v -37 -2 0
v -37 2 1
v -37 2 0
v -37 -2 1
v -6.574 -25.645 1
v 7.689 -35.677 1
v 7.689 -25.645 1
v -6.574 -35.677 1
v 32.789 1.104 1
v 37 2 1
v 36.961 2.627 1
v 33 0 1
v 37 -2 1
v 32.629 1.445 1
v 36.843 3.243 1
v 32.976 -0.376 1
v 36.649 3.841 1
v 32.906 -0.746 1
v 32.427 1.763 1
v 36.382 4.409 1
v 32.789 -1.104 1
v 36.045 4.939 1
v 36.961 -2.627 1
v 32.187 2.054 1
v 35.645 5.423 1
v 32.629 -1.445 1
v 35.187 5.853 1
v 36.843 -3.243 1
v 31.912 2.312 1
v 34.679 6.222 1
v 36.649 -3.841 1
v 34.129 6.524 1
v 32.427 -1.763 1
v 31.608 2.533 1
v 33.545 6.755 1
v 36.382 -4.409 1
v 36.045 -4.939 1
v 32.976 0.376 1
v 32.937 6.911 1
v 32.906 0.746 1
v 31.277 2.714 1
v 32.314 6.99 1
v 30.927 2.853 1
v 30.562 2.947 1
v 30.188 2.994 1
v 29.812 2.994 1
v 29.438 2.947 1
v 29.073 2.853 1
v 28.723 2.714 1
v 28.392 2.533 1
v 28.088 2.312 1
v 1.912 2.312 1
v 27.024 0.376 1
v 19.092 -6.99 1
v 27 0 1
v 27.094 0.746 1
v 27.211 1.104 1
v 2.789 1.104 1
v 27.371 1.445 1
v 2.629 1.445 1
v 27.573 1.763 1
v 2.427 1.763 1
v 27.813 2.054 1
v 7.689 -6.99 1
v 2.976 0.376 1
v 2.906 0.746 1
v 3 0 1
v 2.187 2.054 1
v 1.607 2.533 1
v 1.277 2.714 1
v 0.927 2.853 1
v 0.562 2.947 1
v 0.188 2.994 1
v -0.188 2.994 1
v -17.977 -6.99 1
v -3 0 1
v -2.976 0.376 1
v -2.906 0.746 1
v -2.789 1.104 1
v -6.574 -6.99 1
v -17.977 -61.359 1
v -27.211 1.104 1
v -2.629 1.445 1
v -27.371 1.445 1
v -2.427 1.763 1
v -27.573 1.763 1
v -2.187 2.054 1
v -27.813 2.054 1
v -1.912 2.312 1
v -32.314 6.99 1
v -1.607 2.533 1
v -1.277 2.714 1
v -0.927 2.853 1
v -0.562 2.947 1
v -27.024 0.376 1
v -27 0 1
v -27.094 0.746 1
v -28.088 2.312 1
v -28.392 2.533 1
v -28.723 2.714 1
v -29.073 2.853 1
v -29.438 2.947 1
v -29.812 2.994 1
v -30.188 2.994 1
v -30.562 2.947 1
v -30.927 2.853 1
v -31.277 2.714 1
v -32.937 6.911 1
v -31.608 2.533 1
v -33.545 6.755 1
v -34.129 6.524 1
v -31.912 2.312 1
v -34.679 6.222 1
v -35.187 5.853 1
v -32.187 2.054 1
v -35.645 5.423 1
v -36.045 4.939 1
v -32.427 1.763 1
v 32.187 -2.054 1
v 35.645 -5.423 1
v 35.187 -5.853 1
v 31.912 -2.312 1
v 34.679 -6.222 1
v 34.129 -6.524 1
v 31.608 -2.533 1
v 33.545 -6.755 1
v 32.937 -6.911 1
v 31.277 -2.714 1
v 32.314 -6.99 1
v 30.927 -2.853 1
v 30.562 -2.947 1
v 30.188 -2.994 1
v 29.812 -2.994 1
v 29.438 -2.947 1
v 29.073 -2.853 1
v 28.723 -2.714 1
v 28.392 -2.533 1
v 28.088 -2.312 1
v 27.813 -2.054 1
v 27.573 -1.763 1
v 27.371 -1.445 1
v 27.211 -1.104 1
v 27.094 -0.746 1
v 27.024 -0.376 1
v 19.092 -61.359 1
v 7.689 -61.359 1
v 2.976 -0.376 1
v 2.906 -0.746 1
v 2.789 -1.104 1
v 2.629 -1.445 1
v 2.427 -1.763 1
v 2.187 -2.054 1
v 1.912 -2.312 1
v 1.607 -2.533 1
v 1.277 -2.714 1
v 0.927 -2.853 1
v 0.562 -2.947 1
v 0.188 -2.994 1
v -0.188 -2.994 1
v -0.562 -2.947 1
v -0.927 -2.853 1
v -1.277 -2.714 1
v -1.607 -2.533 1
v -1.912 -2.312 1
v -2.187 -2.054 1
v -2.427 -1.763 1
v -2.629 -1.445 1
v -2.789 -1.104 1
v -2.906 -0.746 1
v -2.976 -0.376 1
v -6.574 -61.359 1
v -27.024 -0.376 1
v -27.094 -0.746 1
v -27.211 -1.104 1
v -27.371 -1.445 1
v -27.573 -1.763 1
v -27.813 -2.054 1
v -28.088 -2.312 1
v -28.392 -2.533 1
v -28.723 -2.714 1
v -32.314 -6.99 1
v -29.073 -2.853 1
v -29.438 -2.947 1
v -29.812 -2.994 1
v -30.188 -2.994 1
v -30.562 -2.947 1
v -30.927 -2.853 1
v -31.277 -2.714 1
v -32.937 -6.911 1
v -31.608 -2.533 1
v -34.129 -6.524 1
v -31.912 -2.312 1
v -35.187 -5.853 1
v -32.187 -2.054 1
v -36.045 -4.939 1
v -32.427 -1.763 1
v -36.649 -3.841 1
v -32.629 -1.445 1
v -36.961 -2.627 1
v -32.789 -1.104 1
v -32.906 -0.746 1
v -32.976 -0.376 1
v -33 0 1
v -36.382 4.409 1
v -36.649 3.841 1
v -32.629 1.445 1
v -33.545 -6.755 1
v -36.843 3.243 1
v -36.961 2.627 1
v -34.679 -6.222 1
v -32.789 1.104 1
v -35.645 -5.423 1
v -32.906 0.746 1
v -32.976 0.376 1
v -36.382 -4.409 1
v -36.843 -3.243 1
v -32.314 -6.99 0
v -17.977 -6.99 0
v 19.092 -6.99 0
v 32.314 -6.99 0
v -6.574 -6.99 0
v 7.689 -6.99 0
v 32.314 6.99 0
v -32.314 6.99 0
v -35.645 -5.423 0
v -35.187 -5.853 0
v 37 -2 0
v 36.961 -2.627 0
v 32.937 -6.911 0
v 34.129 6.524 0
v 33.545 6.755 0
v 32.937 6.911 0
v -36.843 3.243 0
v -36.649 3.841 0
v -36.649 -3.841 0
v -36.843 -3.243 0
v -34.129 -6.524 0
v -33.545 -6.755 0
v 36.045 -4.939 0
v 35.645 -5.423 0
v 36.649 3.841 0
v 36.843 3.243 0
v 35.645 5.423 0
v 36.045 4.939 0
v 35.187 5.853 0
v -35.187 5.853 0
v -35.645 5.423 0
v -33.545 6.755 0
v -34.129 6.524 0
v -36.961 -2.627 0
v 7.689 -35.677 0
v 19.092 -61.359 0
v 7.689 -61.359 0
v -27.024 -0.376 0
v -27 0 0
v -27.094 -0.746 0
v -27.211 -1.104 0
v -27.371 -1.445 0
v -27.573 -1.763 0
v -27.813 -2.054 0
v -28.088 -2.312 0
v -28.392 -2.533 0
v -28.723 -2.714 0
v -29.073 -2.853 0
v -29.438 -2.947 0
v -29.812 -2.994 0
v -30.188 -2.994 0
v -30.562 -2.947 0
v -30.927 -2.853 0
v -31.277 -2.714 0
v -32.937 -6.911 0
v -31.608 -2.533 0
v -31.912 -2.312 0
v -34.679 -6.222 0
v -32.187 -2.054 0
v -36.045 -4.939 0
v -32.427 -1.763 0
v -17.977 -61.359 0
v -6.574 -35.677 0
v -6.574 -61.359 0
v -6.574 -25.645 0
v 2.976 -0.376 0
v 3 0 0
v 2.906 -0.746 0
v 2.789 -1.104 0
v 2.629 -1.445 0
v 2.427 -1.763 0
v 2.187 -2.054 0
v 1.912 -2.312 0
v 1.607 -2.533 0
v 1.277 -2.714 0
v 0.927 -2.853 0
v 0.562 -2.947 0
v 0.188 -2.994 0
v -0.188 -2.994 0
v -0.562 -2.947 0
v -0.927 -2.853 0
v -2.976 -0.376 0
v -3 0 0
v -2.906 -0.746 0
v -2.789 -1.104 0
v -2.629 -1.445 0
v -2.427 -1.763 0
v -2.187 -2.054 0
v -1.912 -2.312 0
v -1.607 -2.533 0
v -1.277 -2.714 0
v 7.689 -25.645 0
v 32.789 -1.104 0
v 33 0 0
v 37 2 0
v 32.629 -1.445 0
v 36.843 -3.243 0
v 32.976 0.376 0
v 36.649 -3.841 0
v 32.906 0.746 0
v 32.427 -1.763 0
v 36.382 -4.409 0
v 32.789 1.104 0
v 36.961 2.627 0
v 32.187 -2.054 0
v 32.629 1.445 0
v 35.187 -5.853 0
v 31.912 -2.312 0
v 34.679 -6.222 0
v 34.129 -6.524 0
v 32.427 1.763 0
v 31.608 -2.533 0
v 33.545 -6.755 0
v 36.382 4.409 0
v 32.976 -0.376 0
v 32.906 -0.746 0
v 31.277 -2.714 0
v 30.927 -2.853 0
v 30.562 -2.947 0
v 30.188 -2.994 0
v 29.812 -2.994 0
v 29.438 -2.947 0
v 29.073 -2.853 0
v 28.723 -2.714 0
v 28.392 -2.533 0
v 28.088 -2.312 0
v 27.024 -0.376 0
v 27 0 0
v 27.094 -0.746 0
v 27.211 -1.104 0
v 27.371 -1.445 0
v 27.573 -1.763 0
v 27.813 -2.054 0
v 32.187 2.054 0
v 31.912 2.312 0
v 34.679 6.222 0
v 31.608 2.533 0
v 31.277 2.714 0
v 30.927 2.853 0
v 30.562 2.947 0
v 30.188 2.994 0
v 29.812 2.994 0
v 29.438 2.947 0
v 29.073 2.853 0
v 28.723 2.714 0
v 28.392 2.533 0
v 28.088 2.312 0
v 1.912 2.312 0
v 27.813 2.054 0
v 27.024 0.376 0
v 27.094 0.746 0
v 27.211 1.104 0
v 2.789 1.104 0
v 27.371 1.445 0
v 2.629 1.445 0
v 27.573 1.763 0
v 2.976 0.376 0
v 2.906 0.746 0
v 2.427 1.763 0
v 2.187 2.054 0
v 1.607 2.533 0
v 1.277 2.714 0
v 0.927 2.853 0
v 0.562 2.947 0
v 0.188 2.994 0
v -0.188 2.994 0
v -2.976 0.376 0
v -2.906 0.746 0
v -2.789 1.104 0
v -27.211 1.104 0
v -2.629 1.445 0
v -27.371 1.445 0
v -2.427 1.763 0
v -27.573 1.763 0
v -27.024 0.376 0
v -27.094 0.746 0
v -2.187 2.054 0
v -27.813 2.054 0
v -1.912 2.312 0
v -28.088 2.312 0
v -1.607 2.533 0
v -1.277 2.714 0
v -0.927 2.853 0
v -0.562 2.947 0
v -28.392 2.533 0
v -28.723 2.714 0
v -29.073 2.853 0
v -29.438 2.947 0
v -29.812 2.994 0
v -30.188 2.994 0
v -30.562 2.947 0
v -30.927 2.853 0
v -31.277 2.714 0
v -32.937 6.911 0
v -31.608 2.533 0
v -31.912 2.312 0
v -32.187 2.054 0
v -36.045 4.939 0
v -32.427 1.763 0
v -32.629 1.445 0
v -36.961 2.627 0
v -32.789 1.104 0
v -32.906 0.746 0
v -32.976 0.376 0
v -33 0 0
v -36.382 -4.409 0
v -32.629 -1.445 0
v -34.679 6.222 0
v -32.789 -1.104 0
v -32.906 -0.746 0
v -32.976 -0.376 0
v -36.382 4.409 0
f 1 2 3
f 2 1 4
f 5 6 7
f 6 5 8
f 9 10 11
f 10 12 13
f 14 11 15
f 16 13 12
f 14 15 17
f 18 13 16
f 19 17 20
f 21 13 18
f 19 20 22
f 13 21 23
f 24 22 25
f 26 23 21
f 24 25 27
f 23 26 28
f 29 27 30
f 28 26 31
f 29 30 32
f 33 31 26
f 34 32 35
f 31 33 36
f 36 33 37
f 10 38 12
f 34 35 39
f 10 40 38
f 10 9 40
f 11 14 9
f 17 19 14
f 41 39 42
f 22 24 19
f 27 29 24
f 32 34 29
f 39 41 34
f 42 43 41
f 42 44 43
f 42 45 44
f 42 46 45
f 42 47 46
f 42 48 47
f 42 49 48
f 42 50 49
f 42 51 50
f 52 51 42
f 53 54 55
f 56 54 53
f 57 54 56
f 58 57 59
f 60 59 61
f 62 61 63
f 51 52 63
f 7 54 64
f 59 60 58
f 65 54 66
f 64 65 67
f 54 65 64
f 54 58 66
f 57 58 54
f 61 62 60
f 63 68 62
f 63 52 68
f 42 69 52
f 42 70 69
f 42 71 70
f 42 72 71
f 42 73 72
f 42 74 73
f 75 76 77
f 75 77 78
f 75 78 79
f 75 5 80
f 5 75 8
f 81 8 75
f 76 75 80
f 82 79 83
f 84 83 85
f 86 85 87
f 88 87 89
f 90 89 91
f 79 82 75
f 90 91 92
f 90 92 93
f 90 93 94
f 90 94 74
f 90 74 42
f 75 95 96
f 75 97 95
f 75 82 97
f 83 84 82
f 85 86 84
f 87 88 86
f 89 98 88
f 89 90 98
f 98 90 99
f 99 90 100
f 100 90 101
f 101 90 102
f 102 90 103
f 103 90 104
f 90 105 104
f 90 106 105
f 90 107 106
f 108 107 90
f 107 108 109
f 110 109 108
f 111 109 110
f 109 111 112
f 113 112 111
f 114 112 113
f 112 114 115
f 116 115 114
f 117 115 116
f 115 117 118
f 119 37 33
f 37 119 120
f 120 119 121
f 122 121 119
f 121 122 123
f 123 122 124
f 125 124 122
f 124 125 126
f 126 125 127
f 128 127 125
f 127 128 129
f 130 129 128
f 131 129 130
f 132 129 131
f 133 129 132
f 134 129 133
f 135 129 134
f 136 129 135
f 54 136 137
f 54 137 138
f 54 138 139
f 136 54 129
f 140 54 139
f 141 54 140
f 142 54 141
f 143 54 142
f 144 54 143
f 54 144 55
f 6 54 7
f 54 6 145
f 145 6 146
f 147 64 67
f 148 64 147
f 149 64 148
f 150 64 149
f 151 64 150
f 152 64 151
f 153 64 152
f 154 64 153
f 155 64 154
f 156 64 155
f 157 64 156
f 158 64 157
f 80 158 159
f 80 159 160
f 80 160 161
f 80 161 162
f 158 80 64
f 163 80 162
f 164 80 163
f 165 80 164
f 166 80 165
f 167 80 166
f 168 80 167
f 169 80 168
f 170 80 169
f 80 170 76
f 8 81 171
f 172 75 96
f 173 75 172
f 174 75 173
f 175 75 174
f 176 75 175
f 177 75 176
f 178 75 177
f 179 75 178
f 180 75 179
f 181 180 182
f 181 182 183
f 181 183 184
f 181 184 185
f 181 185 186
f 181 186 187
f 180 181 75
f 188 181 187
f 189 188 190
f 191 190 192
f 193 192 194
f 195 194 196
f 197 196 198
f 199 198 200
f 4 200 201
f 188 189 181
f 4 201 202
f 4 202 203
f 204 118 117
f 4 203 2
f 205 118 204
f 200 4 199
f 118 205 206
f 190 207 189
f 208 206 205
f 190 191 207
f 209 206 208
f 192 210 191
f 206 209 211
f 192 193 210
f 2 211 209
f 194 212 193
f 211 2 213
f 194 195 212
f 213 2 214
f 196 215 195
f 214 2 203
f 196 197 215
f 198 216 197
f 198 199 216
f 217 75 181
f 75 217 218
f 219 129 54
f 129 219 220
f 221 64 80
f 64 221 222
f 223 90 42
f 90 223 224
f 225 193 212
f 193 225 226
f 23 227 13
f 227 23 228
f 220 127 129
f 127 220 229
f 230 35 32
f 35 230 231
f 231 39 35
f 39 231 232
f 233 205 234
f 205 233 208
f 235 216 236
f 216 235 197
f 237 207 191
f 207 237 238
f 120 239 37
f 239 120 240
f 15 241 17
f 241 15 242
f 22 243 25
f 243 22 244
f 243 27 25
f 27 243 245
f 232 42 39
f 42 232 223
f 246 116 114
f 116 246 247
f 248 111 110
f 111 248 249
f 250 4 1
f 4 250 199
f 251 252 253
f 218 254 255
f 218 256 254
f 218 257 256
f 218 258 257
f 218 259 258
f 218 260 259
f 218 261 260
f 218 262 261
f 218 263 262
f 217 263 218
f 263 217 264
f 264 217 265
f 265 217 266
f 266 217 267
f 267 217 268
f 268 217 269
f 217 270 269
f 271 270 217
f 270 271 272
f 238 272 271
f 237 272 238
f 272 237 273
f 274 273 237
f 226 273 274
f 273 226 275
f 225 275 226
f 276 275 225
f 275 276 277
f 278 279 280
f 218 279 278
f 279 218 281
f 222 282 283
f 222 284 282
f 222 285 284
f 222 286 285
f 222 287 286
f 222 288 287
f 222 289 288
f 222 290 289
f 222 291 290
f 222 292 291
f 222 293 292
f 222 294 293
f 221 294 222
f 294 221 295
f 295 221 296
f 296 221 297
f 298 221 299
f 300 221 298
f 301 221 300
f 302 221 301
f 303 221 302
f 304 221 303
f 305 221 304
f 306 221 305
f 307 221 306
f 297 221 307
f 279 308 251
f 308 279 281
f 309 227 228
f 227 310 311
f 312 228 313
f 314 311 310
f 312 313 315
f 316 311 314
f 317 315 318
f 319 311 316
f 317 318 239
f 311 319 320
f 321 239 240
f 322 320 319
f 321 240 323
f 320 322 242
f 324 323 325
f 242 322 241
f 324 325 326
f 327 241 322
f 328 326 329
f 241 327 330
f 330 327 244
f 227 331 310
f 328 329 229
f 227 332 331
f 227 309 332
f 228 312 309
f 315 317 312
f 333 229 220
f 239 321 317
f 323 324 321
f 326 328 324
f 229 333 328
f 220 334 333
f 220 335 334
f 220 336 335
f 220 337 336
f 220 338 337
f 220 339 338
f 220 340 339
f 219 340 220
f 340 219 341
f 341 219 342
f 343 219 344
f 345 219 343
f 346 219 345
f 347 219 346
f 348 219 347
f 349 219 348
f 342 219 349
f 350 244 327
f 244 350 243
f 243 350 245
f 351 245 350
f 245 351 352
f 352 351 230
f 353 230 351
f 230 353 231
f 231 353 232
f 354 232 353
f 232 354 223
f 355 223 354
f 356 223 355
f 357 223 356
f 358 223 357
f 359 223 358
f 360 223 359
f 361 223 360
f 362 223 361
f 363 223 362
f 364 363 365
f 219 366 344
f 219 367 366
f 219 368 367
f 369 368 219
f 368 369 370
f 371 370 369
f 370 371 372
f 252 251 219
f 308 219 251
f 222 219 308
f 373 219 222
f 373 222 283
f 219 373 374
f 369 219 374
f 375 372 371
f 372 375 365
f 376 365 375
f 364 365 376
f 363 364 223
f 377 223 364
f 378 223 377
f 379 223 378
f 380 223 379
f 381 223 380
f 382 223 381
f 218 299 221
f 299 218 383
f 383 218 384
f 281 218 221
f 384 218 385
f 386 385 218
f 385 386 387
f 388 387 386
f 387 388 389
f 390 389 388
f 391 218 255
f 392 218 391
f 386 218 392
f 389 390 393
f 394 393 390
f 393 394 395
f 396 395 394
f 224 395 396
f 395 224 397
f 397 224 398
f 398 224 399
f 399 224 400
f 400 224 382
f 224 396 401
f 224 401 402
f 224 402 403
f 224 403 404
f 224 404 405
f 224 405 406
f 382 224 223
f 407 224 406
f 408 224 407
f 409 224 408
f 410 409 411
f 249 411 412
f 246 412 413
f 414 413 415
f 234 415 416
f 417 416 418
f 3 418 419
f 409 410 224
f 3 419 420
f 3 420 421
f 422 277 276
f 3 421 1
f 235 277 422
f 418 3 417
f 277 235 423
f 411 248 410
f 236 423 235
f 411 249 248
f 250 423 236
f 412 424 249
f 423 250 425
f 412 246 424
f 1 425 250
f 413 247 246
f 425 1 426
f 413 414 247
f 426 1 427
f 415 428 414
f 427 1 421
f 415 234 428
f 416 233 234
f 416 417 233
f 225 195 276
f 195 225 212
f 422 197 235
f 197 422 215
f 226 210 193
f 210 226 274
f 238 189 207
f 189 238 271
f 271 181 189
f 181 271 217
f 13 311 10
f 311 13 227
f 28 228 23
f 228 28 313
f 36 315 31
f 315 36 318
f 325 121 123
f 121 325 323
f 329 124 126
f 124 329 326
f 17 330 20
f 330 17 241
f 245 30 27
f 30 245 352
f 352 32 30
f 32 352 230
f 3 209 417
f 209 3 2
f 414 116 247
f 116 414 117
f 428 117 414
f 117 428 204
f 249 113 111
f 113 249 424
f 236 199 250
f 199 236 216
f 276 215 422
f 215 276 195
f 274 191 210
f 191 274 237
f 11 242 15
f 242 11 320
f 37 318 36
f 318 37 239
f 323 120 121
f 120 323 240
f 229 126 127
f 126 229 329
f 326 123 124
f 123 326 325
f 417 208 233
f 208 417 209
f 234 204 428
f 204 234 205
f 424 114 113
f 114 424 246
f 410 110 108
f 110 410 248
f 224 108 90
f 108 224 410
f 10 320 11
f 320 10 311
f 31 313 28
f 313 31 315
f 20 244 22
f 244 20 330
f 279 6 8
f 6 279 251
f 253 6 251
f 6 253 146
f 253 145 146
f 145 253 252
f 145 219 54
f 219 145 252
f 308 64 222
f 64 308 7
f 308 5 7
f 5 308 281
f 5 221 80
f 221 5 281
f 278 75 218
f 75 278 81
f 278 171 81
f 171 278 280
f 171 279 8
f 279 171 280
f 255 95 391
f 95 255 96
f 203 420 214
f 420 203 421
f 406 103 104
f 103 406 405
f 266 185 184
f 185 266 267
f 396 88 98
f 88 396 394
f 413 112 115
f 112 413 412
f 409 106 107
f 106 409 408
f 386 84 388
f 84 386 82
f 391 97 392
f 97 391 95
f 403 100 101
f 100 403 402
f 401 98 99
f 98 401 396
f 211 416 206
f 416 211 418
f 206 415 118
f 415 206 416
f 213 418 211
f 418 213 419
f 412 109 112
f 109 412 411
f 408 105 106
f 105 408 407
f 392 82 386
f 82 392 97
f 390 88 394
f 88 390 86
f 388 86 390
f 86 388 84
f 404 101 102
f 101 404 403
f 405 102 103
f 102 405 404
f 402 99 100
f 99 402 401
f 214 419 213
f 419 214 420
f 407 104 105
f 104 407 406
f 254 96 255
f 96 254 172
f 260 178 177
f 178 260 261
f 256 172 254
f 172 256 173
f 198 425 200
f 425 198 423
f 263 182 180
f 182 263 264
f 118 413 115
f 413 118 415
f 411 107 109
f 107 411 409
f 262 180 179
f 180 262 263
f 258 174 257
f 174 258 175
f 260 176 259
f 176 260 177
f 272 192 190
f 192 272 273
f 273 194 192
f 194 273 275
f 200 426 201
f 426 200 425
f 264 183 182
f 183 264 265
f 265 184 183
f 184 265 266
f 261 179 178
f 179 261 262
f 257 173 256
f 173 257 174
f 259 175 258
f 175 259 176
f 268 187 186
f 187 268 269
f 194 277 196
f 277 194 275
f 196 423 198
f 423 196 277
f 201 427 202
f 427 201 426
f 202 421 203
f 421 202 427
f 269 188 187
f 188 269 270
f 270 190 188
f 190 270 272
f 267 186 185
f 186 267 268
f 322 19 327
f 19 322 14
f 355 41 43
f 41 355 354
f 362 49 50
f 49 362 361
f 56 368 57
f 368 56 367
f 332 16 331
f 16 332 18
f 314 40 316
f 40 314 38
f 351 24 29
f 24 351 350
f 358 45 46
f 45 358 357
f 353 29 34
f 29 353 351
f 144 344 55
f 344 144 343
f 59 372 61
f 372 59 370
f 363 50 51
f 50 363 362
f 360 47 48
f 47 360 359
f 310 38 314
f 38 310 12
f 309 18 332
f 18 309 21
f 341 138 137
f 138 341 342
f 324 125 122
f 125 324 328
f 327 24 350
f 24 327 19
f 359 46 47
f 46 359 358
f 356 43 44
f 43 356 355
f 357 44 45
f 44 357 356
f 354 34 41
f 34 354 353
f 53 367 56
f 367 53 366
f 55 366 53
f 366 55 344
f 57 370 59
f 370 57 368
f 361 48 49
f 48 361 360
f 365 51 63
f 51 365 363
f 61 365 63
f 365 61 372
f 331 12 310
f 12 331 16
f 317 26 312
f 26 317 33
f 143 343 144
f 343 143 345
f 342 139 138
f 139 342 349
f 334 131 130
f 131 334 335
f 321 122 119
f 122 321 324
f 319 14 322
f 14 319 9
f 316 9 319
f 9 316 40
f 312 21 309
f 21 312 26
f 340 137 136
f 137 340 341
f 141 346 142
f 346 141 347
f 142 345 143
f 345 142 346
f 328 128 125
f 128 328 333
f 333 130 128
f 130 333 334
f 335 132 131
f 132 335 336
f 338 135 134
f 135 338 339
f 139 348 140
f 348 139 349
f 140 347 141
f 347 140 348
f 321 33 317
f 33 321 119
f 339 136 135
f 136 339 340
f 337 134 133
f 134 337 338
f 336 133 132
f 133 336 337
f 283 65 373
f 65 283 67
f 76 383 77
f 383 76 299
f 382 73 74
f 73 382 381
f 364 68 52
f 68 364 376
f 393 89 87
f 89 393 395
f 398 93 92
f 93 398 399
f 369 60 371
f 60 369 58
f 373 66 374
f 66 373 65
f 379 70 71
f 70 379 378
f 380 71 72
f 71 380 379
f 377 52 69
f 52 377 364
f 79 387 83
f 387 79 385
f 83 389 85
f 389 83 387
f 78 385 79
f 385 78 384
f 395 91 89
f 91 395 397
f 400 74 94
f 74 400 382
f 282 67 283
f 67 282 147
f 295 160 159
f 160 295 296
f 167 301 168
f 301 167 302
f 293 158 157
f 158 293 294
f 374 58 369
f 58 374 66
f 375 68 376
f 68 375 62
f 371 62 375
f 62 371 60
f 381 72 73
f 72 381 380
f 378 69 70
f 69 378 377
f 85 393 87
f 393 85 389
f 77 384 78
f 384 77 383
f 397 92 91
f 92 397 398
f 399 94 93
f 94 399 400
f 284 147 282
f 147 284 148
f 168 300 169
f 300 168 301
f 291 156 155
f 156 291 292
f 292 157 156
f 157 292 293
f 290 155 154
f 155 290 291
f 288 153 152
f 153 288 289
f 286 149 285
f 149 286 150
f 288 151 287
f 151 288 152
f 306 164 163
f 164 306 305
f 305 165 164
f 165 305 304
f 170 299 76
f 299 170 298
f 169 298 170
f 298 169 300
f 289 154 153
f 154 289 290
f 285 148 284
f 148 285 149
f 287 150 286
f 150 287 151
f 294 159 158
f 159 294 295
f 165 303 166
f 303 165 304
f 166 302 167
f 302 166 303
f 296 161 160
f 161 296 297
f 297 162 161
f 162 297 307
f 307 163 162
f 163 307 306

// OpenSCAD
$fn = 50;


difference() {
	union() {
		translate(v = [0, 0, 0]) {
			rotate(a = [0, 0, 0]) {
				hull() {
					translate(v = [-32.0000000000, 2.0000000000, 0]) {
						rotate(a = [0, 0, 0]) {
							translate(v = [0, 0, 0]) {
								rotate(a = [0, 0, 0]) {
									cylinder(h = 1, r = 5);
								}
							}
						}
					}
					translate(v = [32.0000000000, 2.0000000000, 0]) {
						rotate(a = [0, 0, 0]) {
							translate(v = [0, 0, 0]) {
								rotate(a = [0, 0, 0]) {
									cylinder(h = 1, r = 5);
								}
							}
						}
					}
					translate(v = [-32.0000000000, -2.0000000000, 0]) {
						rotate(a = [0, 0, 0]) {
							translate(v = [0, 0, 0]) {
								rotate(a = [0, 0, 0]) {
									cylinder(h = 1, r = 5);
								}
							}
						}
					}
					translate(v = [32.0000000000, -2.0000000000, 0]) {
						rotate(a = [0, 0, 0]) {
							translate(v = [0, 0, 0]) {
								rotate(a = [0, 0, 0]) {
									cylinder(h = 1, r = 5);
								}
							}
						}
					}
				}
			}
		}
		translate(v = [0, -5, 0]) {
			rotate(a = [0, 0, 0]) {
				linear_extrude(height = 1) {
					text(font = "DejaVu Sans Mono:style=Bold", halign = "center", size = 57.0000000000, text = "H", valign = "top");
				}
			}
		}
	}
	union() {
		translate(v = [-30.0000000000, 0.0000000000, -125.0000000000]) {
			rotate(a = [0, 0, 0]) {
				cylinder(h = 250, r = 3.0000000000);
			}
		}
		translate(v = [30.0000000000, 0.0000000000, -125.0000000000]) {
			rotate(a = [0, 0, 0]) {
				cylinder(h = 250, r = 3.0000000000);
			}
		}
		translate(v = [30.0000000000, 0.0000000000, -125.0000000000]) {
			rotate(a = [0, 0, 0]) {
				cylinder(h = 250, r = 3.0000000000);
			}
		}
		translate(v = [0, 0, -125.0000000000]) {
			rotate(a = [0, 0, 0]) {
				cylinder(h = 250, r = 3.0000000000);
			}
		}
	}
}
